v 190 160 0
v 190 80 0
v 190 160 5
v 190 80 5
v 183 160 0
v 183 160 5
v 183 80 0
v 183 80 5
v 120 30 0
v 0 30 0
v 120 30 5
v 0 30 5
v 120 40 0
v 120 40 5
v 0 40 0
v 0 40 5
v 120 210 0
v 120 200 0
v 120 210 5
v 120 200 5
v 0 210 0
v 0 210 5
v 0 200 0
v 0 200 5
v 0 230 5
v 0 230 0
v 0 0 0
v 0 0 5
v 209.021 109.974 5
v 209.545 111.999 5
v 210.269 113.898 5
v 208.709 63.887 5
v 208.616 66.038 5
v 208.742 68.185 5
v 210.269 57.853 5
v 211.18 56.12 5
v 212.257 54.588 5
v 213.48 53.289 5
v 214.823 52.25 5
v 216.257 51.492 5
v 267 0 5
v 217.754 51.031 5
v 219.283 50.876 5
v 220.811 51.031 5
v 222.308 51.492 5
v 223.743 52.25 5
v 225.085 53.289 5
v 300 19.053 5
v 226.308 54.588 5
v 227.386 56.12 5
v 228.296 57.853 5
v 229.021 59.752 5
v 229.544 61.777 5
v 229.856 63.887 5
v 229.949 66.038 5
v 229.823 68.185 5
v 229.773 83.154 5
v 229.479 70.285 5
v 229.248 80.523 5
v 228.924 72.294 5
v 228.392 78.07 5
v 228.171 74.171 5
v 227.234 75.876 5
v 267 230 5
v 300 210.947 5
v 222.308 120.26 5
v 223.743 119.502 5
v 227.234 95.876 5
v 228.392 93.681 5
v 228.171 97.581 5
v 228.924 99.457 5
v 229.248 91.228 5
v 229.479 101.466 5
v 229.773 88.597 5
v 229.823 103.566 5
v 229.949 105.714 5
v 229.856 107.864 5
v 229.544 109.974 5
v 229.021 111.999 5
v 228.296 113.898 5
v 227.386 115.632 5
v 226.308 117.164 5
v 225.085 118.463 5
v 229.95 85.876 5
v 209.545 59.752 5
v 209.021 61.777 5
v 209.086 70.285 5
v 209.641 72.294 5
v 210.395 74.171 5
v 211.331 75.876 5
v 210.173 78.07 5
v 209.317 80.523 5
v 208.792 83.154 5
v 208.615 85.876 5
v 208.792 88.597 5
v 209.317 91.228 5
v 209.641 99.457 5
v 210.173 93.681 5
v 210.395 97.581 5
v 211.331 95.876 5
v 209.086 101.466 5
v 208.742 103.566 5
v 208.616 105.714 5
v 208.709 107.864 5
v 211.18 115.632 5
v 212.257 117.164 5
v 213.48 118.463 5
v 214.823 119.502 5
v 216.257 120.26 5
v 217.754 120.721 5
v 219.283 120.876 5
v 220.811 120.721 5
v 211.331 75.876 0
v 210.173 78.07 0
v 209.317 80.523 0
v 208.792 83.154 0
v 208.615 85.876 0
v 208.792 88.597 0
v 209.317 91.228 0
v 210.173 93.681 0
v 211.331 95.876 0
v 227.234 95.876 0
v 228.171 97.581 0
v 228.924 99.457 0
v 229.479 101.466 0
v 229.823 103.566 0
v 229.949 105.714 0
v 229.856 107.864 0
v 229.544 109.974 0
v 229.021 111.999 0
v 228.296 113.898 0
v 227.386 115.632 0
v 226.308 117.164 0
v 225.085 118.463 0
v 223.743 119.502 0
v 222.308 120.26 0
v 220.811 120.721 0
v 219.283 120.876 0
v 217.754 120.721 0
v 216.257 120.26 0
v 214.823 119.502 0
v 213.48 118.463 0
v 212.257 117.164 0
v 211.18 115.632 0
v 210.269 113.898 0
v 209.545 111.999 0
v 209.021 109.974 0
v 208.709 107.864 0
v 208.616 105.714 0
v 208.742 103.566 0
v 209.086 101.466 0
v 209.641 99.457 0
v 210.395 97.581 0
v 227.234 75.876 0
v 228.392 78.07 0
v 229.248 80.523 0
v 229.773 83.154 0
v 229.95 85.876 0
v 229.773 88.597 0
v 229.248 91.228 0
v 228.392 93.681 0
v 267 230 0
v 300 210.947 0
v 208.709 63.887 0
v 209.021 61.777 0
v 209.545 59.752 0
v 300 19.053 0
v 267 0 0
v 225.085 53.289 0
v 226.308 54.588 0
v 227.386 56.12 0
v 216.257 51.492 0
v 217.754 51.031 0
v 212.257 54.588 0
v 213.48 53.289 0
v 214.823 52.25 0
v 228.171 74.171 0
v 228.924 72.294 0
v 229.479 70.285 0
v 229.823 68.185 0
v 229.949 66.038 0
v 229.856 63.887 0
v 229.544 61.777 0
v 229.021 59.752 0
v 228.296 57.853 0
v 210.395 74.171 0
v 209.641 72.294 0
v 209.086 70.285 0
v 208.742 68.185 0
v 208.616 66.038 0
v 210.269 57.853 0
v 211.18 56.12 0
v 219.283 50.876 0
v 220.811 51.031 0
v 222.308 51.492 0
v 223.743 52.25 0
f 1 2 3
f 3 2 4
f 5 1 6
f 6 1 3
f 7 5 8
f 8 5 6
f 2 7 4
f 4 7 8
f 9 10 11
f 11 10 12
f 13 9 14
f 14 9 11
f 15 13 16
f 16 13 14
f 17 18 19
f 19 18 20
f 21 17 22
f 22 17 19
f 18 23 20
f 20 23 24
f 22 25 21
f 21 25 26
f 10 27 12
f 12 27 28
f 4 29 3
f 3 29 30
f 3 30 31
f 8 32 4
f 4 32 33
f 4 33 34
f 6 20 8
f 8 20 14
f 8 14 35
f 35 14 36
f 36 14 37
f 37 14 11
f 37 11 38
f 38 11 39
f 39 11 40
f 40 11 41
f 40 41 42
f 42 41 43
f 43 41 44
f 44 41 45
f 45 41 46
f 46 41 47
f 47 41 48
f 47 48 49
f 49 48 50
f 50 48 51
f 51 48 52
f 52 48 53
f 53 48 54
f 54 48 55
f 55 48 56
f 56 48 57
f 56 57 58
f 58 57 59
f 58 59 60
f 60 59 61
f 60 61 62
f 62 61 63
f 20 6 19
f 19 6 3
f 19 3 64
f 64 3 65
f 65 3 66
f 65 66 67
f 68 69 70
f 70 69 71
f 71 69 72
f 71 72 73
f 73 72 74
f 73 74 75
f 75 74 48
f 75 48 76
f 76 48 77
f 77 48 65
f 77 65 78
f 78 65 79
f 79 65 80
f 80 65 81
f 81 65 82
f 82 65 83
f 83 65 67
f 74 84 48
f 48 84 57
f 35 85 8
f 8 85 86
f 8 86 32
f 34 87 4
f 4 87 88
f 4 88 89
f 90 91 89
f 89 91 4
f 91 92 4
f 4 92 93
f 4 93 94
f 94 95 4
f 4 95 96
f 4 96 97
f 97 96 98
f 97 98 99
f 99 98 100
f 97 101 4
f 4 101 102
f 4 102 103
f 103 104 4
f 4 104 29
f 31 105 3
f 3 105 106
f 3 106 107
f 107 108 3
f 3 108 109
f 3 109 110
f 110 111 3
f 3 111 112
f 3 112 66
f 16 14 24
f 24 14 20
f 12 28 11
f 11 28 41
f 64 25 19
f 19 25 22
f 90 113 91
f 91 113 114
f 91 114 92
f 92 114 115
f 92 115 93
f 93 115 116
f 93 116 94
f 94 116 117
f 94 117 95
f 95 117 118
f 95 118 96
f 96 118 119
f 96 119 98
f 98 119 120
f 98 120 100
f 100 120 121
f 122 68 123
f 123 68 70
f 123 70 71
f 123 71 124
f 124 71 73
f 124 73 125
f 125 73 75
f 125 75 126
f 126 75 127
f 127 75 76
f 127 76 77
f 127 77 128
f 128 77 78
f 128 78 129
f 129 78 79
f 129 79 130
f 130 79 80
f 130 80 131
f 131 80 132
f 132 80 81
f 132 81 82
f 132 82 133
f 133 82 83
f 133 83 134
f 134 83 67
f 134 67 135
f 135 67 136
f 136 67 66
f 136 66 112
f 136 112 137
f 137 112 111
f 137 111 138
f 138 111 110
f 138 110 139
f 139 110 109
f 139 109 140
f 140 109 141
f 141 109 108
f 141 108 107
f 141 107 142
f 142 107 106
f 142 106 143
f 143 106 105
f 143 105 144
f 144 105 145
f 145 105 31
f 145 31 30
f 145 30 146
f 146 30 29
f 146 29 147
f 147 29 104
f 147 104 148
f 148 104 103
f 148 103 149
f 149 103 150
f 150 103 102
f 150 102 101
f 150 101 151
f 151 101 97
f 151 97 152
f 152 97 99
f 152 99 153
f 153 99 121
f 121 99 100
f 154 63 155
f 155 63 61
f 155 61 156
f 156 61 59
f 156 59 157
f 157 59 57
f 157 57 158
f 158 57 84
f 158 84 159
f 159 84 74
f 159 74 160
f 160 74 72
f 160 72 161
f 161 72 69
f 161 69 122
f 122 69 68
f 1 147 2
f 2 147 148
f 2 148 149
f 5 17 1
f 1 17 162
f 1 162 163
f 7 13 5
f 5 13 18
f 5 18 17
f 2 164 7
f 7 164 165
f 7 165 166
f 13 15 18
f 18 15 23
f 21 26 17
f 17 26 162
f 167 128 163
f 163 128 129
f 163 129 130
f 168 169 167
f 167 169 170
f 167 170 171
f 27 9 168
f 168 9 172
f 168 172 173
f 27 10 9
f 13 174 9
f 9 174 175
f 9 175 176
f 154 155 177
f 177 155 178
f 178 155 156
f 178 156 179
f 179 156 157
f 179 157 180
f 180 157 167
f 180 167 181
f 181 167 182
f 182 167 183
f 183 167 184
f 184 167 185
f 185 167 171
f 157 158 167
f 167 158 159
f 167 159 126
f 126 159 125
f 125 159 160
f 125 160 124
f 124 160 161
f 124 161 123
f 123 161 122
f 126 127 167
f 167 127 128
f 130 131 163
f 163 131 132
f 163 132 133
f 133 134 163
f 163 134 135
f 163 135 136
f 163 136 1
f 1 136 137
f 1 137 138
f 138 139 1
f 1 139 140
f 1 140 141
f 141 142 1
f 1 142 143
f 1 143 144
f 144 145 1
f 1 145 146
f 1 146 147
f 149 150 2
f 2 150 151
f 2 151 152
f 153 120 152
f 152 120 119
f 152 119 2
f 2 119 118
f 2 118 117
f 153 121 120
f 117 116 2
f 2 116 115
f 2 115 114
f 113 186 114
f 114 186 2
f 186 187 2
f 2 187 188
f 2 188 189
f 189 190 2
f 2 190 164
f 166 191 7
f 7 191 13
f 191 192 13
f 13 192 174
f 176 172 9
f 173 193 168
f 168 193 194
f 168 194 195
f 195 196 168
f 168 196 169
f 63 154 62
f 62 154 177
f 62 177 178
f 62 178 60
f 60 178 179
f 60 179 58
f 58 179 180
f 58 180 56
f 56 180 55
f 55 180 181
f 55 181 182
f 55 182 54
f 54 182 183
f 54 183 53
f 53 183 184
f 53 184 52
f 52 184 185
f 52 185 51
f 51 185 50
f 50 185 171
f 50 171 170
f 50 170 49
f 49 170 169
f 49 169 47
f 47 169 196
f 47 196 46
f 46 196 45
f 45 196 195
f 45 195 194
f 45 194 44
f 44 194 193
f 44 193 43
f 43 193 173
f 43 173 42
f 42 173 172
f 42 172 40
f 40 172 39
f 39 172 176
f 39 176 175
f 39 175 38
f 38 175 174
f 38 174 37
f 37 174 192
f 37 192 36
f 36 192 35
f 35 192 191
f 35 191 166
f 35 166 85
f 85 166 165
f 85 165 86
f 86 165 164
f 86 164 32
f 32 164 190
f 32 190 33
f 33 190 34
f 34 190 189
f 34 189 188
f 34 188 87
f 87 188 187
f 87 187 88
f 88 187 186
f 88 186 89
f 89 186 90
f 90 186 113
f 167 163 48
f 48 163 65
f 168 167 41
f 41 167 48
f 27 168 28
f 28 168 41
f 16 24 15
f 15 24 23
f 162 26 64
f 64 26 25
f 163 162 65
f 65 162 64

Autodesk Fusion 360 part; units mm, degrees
sketch "Sketch1" plane through (0, 0, 0) normal (0, 0, 1) x (1, 0, 0)
  line L0 (0, 0) -> (0, 230)
  line L1 (0, 230) -> (267, 230)
  line L2 (267, 230) -> (300, 210.9474)
  line L3 (300, 19.0526) -> (267, 0)
  line L4 (267, 0) -> (0, 0)
  line L5 (300, 210.9474) -> (300, 19.0526)
  dimension "d1" = 230
  dimension "d2" = 267
  dimension "d3" = 33
  dimension "d4" = 150
  dimension "d5" = 150
extrude "Extrude1" add sketch "Sketch1" along normal blind 5
sketch "Sketch2" plane through (0, 0, 5) normal (0, 0, 1) x (-1, 0, 0)
  line L0 (-300, -210.9474) -> (-267, -230)
  line L1 (-267, -230) -> (0, -230)
  line L2 (0, -230) -> (0, 0)
  line L3 (0, 0) -> (-267, 0)
  line L4 (-267, 0) -> (-300, -19.0526)
  line L5 (-300, -19.0526) -> (-300, -210.9474)
  ellipse E0 centre (-219.2825, -65.8758) end of major axis (-229.95, -65.8758) minor radius 15
  line L6 (-208.6151, -65.8758) -> (-229.95, -65.8758) construction
  line L7 (-219.2825, -50.8758) -> (-219.2825, -80.8758) construction
  dimension "d8" = 30
extrude "Extrude2" cut sketch "Sketch2" against normal through all contours E0
pattern_linear "R-Pattern1" count 3 spacing 20 along (0, 1, 0) of "Extrude2"
sketch "Sketch3" plane through (0, 0, 5) normal (0, 0, 1) x (-1, 0, 0)
  ellipse E0 centre (-219.2825, -85.8758) end of major axis (-219.2825, -100.8758) minor radius 10.6675 (-227.2336, -75.8758) -> (-227.2336, -95.8758) ccw
  ellipse E1 centre (-219.2825, -65.8758) end of major axis (-219.2825, -80.8758) minor radius 10.6675 (-211.3315, -75.8758) -> (-227.2336, -75.8758) ccw
  ellipse E2 centre (-219.2825, -85.8758) end of major axis (-219.2825, -100.8758) minor radius 10.6675 (-211.3315, -95.8758) -> (-211.3315, -75.8758) ccw
  ellipse E3 centre (-219.2825, -105.8758) end of major axis (-219.2825, -120.8758) minor radius 10.6675 (-227.2336, -95.8758) -> (-211.3315, -95.8758) ccw
  line L0 (-300, -210.9474) -> (-267, -230)
  line L1 (-267, -230) -> (0, -230)
  line L2 (0, -230) -> (0, 0)
  line L3 (0, 0) -> (-267, 0)
  line L4 (-267, 0) -> (-300, -19.0526)
  line L5 (-300, -19.0526) -> (-300, -210.9474)
  line L6 (0, -40) -> (-120, -40)
  line L7 (-120, -40) -> (-120, -30)
  line L8 (-120, -30) -> (0, -30)
  line L9 (0, -30) -> (0, -40)
  line L10 (0, -210) -> (-120, -210)
  line L11 (-120, -210) -> (-120, -200)
  line L12 (-120, -200) -> (0, -200)
  line L13 (0, -200) -> (0, -210)
  line L14 (-183, -210) -> (-190, -210)
  line L15 (-190, -210) -> (-190, -30)
  line L16 (-190, -30) -> (-183, -30)
  line L17 (-183, -30) -> (-183, -210)
  line L18 (-190, -160) -> (-183, -160)
  line L19 (-190, -80) -> (-183, -80)
  dimension "d15" = 30
  dimension "d16" = 10
  dimension "d18" = 120
  dimension "d19" = 20
  dimension "d21" = 10
  dimension "d22" = 180
  dimension "d26" = 30
  dimension "d30" = 180
  dimension "d31" = 7
  dimension "d33" = 70
  dimension "d34" = 30
  dimension "d35" = 110
  dimension "d36" = 80
  dimension "d37" = 20
  dimension "d38" = 50
extrude "Extrude4" cut sketch "Sketch3" against normal through all contours L2 L10 L11 L12 L13 | L2 L6 L7 L8 L9
extrude "Extrude6" cut sketch "Sketch3" against normal through all contours L15 L17 L18 L19
